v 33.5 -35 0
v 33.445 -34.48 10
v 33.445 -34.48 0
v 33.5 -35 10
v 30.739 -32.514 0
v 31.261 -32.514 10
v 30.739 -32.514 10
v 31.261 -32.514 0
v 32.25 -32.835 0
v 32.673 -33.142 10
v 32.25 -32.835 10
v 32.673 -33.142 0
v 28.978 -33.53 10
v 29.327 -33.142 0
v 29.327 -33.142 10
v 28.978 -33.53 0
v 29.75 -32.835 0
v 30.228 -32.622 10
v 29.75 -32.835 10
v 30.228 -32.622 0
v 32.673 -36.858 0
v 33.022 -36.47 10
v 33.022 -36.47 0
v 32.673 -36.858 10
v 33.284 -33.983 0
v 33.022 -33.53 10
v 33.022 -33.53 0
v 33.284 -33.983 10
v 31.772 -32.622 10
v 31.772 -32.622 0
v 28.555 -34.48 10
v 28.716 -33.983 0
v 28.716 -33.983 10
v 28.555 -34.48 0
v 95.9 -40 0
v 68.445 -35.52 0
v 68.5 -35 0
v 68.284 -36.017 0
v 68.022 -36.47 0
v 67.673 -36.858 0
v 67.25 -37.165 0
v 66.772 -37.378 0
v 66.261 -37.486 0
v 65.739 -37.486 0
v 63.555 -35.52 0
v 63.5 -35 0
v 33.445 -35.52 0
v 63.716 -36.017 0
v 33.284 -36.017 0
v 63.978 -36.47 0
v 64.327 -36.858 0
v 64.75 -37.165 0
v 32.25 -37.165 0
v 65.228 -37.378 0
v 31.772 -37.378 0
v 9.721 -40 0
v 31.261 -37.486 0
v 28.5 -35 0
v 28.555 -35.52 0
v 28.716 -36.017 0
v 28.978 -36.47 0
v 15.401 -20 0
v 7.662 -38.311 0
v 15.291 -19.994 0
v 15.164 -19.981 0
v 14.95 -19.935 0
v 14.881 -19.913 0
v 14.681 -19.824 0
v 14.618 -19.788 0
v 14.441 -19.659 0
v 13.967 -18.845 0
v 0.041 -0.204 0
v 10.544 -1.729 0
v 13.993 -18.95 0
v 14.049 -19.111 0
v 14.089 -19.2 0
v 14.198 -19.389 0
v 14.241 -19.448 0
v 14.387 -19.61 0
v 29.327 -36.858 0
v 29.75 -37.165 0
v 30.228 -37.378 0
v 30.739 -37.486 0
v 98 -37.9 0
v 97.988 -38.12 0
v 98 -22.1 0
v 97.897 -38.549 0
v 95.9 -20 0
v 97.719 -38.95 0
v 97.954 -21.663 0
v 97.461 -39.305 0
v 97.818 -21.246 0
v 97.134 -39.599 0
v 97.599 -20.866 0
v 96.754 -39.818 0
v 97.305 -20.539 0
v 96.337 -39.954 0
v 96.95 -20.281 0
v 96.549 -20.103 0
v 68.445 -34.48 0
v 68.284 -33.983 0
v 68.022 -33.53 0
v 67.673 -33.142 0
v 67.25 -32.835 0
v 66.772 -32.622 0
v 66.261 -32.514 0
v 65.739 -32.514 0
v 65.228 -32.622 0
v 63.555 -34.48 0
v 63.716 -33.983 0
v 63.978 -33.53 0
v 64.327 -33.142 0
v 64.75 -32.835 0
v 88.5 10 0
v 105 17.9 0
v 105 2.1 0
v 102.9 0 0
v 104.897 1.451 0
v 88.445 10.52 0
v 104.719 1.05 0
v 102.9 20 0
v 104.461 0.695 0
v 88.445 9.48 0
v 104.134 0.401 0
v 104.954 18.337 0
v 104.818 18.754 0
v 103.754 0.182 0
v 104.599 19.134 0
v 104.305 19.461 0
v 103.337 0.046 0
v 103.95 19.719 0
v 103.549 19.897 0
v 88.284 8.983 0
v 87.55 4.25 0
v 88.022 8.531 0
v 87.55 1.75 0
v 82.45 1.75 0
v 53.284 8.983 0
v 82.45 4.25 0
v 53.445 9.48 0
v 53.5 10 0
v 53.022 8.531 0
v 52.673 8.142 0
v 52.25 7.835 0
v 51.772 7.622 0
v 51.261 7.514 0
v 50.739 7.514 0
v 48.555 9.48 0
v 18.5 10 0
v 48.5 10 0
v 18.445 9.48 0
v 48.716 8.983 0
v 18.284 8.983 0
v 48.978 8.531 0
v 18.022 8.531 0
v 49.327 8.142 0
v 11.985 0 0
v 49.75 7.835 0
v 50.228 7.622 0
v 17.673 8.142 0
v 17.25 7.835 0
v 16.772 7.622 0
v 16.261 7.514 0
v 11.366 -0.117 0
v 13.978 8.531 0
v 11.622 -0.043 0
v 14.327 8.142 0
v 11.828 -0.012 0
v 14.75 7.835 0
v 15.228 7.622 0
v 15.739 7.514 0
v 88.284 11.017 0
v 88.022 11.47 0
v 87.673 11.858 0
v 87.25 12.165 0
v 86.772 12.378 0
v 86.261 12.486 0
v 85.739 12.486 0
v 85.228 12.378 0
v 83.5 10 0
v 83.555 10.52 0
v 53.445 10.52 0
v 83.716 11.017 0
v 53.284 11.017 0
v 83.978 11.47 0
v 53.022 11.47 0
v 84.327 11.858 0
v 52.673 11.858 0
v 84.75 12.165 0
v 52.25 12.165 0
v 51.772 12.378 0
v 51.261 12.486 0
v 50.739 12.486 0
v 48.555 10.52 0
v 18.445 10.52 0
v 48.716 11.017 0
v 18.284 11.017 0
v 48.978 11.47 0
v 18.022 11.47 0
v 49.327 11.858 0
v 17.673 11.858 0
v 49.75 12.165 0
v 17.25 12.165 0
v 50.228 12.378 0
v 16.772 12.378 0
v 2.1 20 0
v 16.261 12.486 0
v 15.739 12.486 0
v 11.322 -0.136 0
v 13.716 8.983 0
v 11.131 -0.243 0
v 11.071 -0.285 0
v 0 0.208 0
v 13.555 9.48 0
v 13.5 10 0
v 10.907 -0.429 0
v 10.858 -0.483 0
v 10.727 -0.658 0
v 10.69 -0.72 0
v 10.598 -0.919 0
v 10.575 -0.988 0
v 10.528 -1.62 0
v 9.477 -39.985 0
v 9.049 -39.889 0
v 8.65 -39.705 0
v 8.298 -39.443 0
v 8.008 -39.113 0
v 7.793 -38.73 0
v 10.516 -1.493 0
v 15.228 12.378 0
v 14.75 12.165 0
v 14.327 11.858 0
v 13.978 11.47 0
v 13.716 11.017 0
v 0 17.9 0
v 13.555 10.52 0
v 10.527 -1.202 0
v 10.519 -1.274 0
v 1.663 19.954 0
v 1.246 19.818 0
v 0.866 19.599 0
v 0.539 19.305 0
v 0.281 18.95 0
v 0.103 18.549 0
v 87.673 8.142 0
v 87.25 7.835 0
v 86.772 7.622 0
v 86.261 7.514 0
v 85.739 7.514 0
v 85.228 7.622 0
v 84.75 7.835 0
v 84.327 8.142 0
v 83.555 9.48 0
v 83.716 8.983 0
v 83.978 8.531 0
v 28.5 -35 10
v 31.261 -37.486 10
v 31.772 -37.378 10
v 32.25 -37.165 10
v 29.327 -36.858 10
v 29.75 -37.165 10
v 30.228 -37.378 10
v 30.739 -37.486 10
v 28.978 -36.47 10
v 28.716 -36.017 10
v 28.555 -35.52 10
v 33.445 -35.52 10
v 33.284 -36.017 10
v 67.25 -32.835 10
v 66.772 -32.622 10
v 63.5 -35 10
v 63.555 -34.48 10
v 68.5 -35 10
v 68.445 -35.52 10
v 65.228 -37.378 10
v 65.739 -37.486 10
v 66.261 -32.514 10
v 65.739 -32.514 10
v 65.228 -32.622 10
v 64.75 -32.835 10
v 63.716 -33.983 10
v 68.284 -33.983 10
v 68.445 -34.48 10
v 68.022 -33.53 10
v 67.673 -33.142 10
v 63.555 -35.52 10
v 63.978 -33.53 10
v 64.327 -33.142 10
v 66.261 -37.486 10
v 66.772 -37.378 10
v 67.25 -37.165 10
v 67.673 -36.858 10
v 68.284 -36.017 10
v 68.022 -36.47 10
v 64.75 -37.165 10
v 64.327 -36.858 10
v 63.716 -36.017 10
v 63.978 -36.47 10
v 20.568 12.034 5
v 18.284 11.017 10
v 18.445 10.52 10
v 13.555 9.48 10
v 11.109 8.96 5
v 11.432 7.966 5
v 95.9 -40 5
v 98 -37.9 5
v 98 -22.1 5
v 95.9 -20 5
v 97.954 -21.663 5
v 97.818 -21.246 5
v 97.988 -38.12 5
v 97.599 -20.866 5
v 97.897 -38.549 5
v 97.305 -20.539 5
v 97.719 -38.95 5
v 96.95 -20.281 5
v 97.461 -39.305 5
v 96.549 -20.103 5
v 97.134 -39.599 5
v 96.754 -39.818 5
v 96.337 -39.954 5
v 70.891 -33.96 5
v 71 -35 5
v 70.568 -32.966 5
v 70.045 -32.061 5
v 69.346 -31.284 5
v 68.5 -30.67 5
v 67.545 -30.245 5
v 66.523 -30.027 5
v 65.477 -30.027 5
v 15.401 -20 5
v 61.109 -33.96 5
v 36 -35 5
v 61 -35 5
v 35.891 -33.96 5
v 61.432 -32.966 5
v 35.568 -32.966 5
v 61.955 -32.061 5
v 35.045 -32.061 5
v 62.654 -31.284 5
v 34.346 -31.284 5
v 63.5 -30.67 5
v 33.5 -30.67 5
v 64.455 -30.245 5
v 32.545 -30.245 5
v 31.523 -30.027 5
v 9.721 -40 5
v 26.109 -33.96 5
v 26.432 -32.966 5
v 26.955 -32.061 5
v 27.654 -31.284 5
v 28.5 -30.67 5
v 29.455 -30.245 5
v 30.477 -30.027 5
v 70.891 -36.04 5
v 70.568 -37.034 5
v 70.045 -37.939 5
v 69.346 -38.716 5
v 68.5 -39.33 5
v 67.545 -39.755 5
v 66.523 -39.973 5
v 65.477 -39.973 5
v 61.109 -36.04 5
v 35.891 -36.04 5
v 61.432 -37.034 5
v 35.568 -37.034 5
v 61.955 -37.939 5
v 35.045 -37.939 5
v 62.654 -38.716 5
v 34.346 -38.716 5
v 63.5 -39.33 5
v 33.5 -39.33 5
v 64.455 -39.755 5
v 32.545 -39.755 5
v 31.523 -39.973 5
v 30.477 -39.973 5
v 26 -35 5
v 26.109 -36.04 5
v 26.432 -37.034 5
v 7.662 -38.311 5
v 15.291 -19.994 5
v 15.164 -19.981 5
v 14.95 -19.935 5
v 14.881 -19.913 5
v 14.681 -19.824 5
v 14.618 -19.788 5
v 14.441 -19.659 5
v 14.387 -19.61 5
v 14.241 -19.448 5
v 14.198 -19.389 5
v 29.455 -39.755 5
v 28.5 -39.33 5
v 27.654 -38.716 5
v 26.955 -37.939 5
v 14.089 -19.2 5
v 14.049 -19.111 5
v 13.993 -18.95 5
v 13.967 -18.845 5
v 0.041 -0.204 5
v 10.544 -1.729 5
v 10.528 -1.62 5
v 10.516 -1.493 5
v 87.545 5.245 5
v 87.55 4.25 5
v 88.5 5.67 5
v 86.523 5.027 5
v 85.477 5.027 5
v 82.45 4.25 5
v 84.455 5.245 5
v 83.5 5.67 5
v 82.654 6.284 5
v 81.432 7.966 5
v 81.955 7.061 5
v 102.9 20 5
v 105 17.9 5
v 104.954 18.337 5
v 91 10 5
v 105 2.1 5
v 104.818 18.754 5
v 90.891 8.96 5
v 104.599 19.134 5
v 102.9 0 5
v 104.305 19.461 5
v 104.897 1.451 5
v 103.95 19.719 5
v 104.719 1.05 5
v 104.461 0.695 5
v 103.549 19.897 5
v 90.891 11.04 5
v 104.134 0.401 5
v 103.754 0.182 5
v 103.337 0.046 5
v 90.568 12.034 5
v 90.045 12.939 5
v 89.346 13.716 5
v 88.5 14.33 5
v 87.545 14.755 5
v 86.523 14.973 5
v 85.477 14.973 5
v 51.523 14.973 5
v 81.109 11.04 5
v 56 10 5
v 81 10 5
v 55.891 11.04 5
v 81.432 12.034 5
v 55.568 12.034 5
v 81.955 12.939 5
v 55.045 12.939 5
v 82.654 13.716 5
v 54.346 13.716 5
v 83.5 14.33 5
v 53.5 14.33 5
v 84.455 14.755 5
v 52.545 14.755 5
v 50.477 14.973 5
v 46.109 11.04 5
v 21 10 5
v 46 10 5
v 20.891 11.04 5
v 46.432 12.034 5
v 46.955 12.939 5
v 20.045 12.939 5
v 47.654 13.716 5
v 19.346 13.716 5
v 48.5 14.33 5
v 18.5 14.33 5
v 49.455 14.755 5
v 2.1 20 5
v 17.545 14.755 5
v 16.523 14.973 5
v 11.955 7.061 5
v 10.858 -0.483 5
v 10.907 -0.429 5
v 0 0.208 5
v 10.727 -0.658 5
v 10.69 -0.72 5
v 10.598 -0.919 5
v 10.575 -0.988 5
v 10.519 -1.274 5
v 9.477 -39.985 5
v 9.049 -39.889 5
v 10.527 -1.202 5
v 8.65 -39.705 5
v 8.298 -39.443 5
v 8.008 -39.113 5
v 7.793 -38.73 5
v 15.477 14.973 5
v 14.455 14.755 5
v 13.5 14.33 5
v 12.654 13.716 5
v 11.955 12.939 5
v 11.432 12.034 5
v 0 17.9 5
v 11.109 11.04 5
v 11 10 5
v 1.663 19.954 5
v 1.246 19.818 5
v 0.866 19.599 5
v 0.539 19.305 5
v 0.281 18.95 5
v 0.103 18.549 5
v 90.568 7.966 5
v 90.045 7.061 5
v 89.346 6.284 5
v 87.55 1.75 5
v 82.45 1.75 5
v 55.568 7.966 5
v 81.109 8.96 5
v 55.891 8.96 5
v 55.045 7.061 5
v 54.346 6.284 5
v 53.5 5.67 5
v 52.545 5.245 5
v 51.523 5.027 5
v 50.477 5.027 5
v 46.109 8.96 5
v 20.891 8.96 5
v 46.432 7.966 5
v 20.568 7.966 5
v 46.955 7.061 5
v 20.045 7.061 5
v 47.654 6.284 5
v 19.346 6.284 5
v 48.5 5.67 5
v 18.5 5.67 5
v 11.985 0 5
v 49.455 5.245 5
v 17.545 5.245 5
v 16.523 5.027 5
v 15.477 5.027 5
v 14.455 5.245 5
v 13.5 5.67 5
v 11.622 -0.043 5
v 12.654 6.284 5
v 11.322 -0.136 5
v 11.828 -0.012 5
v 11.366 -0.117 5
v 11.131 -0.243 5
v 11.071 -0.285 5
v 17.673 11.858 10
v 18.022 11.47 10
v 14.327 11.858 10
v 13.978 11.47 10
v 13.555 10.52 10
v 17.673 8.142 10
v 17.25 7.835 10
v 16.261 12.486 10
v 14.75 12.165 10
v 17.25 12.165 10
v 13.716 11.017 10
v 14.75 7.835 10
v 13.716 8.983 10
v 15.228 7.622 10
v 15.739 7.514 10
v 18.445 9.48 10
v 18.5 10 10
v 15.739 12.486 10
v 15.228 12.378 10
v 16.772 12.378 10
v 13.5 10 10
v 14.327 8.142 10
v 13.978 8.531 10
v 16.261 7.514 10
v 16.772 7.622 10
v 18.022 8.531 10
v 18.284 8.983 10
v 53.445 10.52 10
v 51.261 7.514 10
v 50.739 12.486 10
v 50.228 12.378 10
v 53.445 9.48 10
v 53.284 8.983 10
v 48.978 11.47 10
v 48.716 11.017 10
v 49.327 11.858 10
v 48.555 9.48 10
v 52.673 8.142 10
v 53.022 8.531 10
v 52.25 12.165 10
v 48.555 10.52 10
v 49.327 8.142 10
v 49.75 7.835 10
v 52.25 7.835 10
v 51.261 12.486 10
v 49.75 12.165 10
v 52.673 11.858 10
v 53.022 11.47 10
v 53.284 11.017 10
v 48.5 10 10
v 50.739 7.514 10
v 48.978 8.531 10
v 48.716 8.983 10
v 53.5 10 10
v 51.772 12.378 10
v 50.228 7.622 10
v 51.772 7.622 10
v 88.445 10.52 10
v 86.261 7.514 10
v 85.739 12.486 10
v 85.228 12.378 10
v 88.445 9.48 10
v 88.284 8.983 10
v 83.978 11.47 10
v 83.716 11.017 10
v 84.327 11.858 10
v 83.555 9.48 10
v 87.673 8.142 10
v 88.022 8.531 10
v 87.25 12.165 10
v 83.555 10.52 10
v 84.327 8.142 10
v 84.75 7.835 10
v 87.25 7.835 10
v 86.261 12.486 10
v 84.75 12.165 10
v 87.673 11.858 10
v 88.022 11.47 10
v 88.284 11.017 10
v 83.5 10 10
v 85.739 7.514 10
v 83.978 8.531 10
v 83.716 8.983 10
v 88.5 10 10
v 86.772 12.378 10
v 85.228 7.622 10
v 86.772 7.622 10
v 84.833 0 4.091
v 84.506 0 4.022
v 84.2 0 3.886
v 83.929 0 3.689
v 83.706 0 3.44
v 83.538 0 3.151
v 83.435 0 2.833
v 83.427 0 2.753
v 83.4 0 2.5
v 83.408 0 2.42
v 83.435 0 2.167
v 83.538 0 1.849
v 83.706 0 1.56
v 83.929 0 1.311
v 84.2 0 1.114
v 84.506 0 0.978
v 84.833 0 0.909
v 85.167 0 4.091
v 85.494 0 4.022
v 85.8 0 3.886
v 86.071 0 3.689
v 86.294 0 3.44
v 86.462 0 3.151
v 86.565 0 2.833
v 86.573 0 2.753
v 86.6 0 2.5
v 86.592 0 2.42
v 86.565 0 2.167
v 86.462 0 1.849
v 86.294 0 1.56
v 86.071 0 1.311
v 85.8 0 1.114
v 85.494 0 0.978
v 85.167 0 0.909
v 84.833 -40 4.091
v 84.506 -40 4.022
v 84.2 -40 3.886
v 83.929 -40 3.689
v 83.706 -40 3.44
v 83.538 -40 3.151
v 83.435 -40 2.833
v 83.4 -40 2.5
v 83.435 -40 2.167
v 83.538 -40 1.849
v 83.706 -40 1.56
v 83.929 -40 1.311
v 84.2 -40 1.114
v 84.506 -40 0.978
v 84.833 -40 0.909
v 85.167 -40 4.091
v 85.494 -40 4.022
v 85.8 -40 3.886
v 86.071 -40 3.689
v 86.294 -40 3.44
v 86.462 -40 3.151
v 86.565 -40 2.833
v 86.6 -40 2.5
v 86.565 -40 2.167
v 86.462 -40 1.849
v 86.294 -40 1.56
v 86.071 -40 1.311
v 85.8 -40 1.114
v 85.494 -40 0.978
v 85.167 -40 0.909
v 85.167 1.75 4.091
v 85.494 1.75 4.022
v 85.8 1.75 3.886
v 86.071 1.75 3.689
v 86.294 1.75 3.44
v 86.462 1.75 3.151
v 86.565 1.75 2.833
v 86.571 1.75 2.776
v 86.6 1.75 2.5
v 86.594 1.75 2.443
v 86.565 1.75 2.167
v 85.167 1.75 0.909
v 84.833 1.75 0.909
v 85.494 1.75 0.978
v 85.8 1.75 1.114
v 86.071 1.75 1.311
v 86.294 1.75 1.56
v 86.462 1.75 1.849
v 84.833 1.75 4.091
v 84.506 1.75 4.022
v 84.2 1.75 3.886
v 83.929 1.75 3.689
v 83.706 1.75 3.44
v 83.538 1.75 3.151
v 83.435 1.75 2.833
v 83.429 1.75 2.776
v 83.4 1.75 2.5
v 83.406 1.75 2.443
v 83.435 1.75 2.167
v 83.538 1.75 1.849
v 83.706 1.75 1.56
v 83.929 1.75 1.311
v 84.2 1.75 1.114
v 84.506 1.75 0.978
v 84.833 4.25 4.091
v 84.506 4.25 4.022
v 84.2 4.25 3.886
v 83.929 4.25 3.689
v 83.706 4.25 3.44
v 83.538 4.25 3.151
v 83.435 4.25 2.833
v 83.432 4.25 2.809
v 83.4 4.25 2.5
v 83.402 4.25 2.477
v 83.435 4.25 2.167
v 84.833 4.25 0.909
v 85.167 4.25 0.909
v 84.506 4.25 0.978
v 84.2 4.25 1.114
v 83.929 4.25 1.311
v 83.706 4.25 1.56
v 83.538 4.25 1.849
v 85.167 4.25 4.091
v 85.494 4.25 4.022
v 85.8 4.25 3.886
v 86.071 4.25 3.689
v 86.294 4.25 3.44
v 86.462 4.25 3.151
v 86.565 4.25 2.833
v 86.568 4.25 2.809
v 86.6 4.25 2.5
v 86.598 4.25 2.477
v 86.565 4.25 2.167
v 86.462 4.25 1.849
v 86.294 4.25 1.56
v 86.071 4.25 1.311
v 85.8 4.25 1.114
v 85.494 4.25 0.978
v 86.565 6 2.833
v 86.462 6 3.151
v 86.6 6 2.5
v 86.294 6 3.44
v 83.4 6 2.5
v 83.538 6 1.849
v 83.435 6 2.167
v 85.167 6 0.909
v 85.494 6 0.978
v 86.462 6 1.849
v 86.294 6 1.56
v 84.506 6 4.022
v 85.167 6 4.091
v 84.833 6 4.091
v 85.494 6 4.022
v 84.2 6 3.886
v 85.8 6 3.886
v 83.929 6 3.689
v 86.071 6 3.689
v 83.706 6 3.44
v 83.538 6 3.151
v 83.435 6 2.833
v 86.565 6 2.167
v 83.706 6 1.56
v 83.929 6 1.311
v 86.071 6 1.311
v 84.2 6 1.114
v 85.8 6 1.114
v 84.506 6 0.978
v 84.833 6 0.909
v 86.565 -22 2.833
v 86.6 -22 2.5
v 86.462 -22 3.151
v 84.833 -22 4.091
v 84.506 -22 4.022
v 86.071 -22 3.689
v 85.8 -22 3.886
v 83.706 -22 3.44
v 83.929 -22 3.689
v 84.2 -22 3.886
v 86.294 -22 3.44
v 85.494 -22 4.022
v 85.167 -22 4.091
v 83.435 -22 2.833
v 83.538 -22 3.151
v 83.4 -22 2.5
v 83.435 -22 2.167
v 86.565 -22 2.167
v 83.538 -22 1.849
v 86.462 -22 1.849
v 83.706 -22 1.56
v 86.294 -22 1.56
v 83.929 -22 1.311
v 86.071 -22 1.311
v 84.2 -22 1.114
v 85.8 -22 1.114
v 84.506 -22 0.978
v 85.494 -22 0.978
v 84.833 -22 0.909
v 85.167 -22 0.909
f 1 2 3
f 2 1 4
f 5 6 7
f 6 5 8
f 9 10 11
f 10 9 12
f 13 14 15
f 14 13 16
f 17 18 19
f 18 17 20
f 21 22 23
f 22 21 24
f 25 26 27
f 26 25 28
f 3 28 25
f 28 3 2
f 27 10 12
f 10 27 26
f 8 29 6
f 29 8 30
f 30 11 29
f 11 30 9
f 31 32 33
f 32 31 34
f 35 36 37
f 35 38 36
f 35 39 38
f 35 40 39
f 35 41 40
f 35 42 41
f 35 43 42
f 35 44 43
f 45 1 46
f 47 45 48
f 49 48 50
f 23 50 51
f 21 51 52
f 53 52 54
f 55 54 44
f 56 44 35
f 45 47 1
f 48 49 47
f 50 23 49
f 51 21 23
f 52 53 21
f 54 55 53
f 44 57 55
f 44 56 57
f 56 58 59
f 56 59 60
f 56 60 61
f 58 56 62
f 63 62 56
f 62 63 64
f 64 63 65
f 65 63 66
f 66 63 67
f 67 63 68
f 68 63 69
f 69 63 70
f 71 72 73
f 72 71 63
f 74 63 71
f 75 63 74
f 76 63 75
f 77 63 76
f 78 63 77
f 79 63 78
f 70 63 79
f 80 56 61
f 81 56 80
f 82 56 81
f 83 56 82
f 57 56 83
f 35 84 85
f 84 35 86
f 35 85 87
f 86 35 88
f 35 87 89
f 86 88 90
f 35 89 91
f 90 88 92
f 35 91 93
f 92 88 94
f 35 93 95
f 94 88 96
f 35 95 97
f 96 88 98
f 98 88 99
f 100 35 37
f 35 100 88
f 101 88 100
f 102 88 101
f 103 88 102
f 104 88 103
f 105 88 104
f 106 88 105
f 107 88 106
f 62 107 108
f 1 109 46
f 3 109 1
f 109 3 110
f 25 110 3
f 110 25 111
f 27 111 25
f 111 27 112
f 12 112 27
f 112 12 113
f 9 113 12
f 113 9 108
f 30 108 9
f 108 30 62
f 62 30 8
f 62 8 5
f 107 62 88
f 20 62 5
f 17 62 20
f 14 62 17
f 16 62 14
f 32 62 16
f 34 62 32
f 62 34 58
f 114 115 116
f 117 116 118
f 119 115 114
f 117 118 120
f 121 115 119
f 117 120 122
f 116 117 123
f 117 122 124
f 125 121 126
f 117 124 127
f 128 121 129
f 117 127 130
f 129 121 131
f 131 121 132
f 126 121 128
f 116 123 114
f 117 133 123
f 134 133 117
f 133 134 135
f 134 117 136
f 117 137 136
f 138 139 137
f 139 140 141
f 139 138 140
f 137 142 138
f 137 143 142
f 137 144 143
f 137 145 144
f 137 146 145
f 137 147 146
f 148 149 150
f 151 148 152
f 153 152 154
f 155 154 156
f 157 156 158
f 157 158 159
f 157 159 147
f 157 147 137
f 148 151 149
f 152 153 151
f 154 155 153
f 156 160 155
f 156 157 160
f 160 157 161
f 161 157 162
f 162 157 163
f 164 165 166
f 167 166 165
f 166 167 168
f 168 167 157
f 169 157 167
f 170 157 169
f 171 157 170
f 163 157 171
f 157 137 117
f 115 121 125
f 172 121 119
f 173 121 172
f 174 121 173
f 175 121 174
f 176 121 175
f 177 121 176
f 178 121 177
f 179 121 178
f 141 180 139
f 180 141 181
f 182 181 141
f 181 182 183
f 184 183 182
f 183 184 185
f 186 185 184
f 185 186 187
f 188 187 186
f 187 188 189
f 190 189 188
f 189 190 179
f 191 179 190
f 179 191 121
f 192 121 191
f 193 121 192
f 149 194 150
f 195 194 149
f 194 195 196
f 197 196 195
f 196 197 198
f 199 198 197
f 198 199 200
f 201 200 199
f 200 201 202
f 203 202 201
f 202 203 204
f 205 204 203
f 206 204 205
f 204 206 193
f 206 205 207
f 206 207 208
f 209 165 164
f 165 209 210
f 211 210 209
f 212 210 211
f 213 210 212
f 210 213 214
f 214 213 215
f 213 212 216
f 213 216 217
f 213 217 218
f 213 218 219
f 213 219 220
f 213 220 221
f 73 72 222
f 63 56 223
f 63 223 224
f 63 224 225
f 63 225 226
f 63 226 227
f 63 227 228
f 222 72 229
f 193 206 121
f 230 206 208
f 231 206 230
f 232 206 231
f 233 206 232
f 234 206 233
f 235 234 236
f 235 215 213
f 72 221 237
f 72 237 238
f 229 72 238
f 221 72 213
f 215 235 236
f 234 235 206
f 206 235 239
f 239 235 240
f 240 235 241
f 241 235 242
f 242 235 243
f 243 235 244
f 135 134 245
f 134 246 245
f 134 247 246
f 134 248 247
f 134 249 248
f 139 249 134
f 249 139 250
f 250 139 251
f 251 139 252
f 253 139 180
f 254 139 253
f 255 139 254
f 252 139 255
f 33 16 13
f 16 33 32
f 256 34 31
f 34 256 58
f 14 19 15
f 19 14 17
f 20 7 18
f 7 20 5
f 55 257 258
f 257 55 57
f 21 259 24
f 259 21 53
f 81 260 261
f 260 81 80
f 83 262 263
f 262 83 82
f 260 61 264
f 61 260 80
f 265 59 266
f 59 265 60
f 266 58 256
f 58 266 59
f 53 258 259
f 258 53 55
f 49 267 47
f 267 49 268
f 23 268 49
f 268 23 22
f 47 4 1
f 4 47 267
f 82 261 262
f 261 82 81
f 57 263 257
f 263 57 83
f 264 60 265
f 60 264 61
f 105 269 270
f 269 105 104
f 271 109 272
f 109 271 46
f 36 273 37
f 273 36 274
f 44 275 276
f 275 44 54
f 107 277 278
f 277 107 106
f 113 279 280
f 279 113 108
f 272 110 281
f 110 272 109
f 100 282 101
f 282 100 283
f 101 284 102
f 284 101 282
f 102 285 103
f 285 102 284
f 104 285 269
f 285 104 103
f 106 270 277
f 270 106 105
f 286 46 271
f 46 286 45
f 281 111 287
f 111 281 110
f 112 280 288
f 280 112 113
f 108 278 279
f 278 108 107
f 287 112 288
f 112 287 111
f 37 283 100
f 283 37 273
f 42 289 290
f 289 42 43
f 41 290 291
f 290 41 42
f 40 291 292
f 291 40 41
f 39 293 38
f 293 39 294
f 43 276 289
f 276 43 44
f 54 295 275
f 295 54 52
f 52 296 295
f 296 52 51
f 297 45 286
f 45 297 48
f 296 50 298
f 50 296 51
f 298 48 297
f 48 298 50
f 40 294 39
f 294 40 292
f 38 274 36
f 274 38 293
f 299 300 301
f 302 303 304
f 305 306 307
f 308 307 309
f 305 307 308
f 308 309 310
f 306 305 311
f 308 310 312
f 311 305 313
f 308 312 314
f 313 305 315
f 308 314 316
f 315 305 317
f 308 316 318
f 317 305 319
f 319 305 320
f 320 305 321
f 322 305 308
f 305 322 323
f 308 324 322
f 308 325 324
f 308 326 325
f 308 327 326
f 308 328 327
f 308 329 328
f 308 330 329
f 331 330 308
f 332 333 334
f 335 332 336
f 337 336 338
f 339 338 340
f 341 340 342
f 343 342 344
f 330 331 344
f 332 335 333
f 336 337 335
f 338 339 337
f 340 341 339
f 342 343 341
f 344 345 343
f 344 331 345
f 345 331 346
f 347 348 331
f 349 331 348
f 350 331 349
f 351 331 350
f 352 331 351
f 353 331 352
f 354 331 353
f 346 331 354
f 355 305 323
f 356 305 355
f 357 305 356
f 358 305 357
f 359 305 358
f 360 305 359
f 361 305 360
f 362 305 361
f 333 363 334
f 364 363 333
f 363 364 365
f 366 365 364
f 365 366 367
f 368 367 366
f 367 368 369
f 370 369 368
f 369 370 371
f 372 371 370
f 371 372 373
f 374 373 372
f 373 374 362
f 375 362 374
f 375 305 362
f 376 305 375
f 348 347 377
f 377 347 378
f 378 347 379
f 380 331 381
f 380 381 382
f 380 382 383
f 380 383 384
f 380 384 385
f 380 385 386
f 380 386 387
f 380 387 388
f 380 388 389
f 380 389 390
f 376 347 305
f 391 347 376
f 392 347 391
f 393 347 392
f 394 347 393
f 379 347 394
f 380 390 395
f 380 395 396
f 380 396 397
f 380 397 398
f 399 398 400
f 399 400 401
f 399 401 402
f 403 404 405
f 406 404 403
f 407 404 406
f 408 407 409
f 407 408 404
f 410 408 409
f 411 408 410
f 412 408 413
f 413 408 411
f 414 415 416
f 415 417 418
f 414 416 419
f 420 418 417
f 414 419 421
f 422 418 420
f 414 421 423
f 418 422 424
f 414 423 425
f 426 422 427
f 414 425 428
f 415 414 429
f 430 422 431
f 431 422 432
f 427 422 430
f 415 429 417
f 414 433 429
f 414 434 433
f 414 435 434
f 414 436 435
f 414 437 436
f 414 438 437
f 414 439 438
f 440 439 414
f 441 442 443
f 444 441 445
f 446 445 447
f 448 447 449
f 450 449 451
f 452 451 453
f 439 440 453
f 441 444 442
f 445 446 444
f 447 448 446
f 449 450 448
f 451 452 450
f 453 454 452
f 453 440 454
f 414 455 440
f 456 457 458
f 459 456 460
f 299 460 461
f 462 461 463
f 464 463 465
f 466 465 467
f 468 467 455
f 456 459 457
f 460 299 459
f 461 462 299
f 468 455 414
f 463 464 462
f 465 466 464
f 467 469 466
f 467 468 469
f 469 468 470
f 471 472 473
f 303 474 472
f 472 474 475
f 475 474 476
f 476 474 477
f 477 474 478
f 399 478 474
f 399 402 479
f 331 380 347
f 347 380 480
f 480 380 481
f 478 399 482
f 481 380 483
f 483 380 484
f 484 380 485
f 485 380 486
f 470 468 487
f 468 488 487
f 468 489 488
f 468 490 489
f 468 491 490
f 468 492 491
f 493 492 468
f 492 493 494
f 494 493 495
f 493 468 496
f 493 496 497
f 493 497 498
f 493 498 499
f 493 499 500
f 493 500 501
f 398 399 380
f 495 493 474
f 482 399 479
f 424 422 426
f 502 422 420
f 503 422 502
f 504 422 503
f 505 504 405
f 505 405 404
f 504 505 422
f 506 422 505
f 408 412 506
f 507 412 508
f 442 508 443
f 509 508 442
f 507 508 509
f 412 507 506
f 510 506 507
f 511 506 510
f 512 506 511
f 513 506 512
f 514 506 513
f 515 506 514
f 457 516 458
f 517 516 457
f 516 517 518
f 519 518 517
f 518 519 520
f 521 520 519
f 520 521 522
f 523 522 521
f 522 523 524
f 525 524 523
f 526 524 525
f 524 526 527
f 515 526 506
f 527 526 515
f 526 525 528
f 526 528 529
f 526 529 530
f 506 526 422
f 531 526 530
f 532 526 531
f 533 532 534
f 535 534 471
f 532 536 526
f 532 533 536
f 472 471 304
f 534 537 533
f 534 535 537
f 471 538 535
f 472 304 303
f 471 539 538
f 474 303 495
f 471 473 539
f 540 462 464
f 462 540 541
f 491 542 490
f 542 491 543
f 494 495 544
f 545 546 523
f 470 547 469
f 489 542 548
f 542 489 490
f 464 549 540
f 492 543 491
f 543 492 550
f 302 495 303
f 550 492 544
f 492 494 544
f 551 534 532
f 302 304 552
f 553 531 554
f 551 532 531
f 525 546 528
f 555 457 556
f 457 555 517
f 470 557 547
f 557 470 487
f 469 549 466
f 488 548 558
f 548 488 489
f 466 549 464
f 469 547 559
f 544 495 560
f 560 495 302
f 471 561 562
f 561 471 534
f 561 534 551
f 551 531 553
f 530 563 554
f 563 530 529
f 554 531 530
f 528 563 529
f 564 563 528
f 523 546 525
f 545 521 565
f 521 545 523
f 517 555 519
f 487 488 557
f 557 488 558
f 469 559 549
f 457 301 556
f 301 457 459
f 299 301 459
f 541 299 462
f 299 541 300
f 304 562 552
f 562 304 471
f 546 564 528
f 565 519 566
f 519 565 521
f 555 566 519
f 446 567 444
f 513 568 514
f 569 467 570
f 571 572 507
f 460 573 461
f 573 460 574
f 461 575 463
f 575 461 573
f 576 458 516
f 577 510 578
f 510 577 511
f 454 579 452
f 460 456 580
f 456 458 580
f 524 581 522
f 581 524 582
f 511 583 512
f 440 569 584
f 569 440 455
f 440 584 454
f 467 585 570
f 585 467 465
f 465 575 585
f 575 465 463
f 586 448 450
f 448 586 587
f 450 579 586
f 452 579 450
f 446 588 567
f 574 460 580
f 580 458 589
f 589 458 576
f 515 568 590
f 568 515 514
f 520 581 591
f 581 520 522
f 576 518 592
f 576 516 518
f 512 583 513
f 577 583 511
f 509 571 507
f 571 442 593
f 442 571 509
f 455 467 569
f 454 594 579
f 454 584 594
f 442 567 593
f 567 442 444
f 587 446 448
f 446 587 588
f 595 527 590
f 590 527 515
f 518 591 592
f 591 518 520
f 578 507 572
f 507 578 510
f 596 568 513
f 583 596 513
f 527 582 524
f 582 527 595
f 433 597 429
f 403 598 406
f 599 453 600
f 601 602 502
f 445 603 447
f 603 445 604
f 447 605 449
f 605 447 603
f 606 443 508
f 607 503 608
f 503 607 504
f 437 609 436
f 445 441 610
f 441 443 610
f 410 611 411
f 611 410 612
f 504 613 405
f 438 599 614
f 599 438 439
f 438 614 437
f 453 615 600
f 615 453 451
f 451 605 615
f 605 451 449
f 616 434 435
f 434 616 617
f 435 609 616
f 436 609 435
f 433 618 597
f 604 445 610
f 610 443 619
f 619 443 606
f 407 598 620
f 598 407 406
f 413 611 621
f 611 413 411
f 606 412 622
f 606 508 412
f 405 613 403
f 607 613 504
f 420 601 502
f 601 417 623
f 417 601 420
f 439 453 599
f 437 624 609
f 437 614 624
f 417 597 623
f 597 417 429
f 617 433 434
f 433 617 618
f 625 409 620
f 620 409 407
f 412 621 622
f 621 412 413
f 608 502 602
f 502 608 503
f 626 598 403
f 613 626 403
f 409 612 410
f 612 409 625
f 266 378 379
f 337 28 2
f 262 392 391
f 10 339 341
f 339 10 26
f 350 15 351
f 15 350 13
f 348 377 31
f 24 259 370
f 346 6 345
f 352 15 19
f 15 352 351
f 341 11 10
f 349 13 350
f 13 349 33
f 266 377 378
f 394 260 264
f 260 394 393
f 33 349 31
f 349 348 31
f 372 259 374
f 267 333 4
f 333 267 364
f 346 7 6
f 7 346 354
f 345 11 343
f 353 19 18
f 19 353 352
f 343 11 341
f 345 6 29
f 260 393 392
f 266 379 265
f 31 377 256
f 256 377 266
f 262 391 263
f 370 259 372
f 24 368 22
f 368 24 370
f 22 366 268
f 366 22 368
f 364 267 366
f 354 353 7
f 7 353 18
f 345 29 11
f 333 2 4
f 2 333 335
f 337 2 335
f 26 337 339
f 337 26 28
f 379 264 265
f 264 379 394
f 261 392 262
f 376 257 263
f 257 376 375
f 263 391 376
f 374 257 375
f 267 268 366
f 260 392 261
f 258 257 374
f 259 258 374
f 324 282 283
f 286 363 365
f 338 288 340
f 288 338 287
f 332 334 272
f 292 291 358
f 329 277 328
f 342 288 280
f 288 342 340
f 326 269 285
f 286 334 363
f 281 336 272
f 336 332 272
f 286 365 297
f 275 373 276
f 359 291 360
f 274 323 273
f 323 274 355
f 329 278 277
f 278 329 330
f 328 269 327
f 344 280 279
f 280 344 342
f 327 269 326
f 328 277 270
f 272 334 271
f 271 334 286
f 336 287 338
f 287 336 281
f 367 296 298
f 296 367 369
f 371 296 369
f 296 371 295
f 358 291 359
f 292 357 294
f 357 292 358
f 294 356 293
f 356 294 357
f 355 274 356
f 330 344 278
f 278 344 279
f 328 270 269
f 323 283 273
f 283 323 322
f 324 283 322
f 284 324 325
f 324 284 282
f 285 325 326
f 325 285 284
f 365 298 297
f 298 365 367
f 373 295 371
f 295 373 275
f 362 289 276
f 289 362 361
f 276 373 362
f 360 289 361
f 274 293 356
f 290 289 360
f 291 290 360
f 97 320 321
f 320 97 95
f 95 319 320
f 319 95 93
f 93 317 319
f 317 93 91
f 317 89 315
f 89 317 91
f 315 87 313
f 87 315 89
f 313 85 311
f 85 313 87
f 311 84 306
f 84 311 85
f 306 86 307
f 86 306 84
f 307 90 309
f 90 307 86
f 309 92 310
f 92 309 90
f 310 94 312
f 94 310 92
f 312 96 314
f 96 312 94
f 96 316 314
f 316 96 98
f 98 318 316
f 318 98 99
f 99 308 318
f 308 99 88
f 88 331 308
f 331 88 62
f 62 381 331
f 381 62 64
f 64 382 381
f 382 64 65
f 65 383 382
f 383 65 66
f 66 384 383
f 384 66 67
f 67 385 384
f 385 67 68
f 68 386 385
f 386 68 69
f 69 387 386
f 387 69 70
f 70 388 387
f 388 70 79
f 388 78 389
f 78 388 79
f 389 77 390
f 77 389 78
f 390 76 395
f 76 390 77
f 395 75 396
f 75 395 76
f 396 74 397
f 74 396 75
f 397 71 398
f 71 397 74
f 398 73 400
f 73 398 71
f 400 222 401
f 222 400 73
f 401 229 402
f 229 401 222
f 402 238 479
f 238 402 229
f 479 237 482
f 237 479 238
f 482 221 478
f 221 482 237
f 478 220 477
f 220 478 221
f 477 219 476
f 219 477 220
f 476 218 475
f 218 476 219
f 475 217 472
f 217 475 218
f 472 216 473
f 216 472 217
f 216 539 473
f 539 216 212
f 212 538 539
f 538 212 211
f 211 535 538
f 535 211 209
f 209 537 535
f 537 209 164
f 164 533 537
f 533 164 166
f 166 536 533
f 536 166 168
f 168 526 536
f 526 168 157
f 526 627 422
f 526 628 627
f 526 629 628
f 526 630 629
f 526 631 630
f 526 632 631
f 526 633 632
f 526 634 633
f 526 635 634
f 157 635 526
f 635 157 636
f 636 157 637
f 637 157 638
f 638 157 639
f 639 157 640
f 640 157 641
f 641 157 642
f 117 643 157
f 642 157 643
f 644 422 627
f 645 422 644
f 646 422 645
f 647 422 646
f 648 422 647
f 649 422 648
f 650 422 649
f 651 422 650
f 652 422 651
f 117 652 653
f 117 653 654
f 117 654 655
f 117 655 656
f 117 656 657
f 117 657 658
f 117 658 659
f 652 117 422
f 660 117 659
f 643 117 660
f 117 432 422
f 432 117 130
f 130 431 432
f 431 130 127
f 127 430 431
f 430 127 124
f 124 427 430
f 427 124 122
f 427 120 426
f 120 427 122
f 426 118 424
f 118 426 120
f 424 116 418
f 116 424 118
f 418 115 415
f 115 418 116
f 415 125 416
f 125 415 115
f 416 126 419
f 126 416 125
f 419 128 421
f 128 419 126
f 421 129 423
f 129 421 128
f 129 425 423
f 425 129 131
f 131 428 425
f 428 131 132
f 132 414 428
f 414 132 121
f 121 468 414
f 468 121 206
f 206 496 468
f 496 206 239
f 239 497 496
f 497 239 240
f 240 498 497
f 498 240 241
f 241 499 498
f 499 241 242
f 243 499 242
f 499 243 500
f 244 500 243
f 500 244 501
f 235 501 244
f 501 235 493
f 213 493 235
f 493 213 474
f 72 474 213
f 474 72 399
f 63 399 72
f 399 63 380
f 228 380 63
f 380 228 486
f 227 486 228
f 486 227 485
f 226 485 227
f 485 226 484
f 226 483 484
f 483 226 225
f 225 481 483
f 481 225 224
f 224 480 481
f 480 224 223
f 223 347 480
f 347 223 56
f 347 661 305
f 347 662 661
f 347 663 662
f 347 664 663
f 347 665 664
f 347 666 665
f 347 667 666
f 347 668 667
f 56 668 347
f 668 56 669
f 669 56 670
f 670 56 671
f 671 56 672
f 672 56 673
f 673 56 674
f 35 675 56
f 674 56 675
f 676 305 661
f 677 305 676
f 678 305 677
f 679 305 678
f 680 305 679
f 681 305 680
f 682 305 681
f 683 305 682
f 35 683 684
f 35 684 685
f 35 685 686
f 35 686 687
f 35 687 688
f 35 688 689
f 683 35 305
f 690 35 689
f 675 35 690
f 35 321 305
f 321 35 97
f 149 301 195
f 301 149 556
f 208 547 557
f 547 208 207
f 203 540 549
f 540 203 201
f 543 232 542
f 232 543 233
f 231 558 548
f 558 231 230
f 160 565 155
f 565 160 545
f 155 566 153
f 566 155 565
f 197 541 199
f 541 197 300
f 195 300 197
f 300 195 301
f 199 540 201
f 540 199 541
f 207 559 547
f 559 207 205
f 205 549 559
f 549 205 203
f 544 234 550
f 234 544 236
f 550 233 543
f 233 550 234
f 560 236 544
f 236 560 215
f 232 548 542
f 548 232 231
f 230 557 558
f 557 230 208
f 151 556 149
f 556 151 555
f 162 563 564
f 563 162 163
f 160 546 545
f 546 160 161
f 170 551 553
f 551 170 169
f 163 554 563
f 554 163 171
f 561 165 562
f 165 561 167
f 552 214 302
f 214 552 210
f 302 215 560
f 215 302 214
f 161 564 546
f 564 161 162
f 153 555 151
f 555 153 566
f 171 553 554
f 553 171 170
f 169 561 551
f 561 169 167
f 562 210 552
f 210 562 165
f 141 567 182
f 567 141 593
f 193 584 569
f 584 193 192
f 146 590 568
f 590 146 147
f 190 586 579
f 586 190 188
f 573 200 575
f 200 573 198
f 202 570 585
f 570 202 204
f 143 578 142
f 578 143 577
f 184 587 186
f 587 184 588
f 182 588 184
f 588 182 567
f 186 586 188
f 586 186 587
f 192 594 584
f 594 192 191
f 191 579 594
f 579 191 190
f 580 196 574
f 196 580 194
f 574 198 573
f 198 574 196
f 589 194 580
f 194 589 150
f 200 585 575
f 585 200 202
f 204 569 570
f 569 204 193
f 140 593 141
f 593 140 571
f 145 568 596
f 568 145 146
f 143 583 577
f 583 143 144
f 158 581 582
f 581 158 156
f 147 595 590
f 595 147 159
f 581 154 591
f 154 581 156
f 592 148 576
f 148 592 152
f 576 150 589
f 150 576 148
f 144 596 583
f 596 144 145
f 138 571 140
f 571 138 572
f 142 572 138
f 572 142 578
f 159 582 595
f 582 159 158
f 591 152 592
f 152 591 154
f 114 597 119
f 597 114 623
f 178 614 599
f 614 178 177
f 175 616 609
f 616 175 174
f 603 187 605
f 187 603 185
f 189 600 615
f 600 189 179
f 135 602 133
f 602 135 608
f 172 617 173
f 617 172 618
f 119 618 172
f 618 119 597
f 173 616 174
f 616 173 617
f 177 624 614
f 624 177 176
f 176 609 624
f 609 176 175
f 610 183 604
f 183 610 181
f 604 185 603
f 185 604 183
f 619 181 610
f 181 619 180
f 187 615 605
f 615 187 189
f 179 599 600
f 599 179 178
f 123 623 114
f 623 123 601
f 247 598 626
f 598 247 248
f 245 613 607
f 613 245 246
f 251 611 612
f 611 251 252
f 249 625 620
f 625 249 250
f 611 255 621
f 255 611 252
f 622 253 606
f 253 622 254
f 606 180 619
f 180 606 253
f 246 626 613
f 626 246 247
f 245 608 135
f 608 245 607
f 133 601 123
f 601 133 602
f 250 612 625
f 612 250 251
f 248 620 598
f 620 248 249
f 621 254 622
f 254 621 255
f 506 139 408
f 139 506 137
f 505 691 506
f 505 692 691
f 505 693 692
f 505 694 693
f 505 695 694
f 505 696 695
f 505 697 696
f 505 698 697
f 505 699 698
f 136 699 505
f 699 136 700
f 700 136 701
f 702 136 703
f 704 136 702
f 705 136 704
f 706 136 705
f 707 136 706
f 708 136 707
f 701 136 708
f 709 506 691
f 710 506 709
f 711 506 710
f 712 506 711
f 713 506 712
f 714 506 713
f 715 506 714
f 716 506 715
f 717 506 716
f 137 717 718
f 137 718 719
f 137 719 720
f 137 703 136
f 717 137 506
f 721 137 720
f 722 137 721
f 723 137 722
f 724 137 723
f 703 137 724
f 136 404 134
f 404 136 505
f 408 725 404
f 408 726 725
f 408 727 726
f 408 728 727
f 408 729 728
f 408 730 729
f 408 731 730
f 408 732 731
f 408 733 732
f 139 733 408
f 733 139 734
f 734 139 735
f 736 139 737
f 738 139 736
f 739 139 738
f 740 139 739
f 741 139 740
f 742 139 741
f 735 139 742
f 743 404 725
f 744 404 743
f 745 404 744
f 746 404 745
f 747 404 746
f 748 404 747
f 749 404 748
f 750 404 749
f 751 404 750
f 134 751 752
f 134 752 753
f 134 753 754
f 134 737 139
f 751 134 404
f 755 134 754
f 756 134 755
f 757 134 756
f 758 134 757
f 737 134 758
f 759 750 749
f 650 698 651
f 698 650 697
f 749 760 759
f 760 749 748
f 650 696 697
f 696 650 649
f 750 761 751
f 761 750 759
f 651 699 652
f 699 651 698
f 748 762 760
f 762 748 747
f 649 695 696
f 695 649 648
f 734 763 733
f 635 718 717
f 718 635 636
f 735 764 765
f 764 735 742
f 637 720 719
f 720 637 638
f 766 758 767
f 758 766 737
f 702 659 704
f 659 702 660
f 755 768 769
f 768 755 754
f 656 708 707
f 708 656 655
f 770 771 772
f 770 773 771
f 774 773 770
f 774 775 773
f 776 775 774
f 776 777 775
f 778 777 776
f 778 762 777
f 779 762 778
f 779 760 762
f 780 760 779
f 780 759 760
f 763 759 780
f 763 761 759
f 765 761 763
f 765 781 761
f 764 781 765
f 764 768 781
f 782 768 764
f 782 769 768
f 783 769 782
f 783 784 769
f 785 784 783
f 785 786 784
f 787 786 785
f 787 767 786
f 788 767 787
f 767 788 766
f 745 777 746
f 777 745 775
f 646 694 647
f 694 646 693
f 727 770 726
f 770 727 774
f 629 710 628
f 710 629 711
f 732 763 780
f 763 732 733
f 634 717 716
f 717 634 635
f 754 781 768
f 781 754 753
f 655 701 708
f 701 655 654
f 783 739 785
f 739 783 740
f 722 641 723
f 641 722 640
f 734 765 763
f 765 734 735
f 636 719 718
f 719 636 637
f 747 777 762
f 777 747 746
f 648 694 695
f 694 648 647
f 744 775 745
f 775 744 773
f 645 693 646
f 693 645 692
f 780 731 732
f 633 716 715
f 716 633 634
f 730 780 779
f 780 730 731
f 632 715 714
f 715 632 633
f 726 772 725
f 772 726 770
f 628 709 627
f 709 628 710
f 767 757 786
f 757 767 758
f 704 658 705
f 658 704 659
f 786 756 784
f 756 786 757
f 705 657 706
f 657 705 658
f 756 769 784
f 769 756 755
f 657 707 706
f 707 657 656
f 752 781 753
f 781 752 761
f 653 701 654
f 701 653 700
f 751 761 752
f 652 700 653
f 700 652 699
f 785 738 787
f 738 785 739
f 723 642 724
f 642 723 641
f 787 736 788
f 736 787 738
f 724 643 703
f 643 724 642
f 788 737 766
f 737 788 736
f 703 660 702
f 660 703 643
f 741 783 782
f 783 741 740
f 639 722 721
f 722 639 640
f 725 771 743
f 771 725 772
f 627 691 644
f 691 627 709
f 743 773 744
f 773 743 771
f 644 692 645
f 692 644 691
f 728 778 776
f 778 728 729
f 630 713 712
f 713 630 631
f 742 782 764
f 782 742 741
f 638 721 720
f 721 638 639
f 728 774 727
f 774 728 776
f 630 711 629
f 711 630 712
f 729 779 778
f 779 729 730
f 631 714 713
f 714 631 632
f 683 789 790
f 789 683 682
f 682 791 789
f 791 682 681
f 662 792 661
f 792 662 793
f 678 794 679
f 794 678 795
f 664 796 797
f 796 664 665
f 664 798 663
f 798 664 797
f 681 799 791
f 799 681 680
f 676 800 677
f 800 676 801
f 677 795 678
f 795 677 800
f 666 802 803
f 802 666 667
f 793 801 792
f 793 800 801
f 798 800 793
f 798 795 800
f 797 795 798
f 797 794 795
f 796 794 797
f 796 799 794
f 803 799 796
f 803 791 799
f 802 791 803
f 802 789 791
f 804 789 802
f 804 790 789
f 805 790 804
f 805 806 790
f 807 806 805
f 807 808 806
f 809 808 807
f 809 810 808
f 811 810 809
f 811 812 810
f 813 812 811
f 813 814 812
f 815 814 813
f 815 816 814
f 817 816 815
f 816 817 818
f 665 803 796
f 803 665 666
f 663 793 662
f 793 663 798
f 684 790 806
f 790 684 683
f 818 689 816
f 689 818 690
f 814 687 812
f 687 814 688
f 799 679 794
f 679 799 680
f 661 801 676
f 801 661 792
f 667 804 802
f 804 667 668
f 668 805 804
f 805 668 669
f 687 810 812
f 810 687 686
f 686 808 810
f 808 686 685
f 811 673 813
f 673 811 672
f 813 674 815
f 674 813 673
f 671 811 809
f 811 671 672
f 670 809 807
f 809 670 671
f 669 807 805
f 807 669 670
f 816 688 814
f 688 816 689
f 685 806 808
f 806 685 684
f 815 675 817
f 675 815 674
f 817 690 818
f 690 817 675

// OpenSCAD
// Jacob McKenna
// UAF CS 600 Robotics
$fn = 30;
topLength = 105;
topHeight = 20;

bottomLength = 90;
bottomHeight = 20;

bottomWheelMountLocStart = [8, -40, 0];

wheelOffset = 35;
bottomWheelOffset = 15;
wheelStartPos = 16;

M5Radius = 5 / 2;

thickness = 5;

module TopWheelMount(){
    difference(){
        union(){
            square([topLength, topHeight]);
        }
    }
}

module BottomWheelMount(){
    translate(bottomWheelMountLocStart)
    square([bottomLength, bottomHeight]);
}

module Connector(){
    y = bottomWheelMountLocStart[1];
    x = bottomWheelMountLocStart[0];
    angle = atan(y/x);
    cutoff = x*6;
    difference(){
            rotate([0, 0, angle]) square([y * -2, 10]);
            translate([0, y-cutoff, 0]) square([cutoff,cutoff]) ;
    }
}

module WheelCones(x, y, z=thickness){
    translate([x, y, z])
        cylinder(r1=5, r=2.5, h=z);
}

module TopWheelCones(){
    translate([0, topHeight/2, 0])
        for (i = [0:2])
            WheelCones(wheelStartPos + i*wheelOffset,0);
}

module BottomWheelCones(){
    y = topHeight/2 - 12.5 - 20 - 12.5;
    translate([0, y, 0])
        for (i = [0:1])
            WheelCones(wheelStartPos +i*wheelOffset + bottomWheelOffset,0);
}

module TopWheelSlots(){
    translate([0, topHeight/2, 0])
        for (i = [0:2])
            translate([wheelStartPos + i*wheelOffset,0,0]) cylinder(r=M5Radius, h=5*2);
}

module BottomWheelSlots(){
    y = topHeight/2 - 12.5 - 20 - 12.5;
    translate([0, y, 0])
        for (i = [0:1])
            translate([wheelStartPos +i*wheelOffset + bottomWheelOffset,0,0]) cylinder(r=M5Radius, h=5*2);
}

module BoltTightenerCutout(){
    boltLength = 25;
    nutHeight = 5;
    radius = 1.6;
    //1.6 real
    rotate([90,0,0]) translate([85,thickness/2,-3]) cube([5.1,6,2.5], center=true);
    rotate([90,0,0]) translate([85,thickness/2,-6]) cylinder(r=radius, h=boltLength);
    rotate([90,0,0]) translate([85,thickness/2,22]) cylinder(r=radius, h=boltLength);
}

module Fillet(){
    offset(-1.4) offset(1.4) children();
}

module Smooth(){
    offset(2.1) offset(-2.1) children();
}

module DriveTrain(){
     difference() {
        union(){
            TopWheelCones();
            BottomWheelCones();
            linear_extrude(thickness) Smooth() Fillet() union(){;
                TopWheelMount();
                Connector();
                BottomWheelMount();
            }
       }
       TopWheelSlots();
       BottomWheelSlots();
       #BoltTightenerCutout();
    }
}

DriveTrain();
